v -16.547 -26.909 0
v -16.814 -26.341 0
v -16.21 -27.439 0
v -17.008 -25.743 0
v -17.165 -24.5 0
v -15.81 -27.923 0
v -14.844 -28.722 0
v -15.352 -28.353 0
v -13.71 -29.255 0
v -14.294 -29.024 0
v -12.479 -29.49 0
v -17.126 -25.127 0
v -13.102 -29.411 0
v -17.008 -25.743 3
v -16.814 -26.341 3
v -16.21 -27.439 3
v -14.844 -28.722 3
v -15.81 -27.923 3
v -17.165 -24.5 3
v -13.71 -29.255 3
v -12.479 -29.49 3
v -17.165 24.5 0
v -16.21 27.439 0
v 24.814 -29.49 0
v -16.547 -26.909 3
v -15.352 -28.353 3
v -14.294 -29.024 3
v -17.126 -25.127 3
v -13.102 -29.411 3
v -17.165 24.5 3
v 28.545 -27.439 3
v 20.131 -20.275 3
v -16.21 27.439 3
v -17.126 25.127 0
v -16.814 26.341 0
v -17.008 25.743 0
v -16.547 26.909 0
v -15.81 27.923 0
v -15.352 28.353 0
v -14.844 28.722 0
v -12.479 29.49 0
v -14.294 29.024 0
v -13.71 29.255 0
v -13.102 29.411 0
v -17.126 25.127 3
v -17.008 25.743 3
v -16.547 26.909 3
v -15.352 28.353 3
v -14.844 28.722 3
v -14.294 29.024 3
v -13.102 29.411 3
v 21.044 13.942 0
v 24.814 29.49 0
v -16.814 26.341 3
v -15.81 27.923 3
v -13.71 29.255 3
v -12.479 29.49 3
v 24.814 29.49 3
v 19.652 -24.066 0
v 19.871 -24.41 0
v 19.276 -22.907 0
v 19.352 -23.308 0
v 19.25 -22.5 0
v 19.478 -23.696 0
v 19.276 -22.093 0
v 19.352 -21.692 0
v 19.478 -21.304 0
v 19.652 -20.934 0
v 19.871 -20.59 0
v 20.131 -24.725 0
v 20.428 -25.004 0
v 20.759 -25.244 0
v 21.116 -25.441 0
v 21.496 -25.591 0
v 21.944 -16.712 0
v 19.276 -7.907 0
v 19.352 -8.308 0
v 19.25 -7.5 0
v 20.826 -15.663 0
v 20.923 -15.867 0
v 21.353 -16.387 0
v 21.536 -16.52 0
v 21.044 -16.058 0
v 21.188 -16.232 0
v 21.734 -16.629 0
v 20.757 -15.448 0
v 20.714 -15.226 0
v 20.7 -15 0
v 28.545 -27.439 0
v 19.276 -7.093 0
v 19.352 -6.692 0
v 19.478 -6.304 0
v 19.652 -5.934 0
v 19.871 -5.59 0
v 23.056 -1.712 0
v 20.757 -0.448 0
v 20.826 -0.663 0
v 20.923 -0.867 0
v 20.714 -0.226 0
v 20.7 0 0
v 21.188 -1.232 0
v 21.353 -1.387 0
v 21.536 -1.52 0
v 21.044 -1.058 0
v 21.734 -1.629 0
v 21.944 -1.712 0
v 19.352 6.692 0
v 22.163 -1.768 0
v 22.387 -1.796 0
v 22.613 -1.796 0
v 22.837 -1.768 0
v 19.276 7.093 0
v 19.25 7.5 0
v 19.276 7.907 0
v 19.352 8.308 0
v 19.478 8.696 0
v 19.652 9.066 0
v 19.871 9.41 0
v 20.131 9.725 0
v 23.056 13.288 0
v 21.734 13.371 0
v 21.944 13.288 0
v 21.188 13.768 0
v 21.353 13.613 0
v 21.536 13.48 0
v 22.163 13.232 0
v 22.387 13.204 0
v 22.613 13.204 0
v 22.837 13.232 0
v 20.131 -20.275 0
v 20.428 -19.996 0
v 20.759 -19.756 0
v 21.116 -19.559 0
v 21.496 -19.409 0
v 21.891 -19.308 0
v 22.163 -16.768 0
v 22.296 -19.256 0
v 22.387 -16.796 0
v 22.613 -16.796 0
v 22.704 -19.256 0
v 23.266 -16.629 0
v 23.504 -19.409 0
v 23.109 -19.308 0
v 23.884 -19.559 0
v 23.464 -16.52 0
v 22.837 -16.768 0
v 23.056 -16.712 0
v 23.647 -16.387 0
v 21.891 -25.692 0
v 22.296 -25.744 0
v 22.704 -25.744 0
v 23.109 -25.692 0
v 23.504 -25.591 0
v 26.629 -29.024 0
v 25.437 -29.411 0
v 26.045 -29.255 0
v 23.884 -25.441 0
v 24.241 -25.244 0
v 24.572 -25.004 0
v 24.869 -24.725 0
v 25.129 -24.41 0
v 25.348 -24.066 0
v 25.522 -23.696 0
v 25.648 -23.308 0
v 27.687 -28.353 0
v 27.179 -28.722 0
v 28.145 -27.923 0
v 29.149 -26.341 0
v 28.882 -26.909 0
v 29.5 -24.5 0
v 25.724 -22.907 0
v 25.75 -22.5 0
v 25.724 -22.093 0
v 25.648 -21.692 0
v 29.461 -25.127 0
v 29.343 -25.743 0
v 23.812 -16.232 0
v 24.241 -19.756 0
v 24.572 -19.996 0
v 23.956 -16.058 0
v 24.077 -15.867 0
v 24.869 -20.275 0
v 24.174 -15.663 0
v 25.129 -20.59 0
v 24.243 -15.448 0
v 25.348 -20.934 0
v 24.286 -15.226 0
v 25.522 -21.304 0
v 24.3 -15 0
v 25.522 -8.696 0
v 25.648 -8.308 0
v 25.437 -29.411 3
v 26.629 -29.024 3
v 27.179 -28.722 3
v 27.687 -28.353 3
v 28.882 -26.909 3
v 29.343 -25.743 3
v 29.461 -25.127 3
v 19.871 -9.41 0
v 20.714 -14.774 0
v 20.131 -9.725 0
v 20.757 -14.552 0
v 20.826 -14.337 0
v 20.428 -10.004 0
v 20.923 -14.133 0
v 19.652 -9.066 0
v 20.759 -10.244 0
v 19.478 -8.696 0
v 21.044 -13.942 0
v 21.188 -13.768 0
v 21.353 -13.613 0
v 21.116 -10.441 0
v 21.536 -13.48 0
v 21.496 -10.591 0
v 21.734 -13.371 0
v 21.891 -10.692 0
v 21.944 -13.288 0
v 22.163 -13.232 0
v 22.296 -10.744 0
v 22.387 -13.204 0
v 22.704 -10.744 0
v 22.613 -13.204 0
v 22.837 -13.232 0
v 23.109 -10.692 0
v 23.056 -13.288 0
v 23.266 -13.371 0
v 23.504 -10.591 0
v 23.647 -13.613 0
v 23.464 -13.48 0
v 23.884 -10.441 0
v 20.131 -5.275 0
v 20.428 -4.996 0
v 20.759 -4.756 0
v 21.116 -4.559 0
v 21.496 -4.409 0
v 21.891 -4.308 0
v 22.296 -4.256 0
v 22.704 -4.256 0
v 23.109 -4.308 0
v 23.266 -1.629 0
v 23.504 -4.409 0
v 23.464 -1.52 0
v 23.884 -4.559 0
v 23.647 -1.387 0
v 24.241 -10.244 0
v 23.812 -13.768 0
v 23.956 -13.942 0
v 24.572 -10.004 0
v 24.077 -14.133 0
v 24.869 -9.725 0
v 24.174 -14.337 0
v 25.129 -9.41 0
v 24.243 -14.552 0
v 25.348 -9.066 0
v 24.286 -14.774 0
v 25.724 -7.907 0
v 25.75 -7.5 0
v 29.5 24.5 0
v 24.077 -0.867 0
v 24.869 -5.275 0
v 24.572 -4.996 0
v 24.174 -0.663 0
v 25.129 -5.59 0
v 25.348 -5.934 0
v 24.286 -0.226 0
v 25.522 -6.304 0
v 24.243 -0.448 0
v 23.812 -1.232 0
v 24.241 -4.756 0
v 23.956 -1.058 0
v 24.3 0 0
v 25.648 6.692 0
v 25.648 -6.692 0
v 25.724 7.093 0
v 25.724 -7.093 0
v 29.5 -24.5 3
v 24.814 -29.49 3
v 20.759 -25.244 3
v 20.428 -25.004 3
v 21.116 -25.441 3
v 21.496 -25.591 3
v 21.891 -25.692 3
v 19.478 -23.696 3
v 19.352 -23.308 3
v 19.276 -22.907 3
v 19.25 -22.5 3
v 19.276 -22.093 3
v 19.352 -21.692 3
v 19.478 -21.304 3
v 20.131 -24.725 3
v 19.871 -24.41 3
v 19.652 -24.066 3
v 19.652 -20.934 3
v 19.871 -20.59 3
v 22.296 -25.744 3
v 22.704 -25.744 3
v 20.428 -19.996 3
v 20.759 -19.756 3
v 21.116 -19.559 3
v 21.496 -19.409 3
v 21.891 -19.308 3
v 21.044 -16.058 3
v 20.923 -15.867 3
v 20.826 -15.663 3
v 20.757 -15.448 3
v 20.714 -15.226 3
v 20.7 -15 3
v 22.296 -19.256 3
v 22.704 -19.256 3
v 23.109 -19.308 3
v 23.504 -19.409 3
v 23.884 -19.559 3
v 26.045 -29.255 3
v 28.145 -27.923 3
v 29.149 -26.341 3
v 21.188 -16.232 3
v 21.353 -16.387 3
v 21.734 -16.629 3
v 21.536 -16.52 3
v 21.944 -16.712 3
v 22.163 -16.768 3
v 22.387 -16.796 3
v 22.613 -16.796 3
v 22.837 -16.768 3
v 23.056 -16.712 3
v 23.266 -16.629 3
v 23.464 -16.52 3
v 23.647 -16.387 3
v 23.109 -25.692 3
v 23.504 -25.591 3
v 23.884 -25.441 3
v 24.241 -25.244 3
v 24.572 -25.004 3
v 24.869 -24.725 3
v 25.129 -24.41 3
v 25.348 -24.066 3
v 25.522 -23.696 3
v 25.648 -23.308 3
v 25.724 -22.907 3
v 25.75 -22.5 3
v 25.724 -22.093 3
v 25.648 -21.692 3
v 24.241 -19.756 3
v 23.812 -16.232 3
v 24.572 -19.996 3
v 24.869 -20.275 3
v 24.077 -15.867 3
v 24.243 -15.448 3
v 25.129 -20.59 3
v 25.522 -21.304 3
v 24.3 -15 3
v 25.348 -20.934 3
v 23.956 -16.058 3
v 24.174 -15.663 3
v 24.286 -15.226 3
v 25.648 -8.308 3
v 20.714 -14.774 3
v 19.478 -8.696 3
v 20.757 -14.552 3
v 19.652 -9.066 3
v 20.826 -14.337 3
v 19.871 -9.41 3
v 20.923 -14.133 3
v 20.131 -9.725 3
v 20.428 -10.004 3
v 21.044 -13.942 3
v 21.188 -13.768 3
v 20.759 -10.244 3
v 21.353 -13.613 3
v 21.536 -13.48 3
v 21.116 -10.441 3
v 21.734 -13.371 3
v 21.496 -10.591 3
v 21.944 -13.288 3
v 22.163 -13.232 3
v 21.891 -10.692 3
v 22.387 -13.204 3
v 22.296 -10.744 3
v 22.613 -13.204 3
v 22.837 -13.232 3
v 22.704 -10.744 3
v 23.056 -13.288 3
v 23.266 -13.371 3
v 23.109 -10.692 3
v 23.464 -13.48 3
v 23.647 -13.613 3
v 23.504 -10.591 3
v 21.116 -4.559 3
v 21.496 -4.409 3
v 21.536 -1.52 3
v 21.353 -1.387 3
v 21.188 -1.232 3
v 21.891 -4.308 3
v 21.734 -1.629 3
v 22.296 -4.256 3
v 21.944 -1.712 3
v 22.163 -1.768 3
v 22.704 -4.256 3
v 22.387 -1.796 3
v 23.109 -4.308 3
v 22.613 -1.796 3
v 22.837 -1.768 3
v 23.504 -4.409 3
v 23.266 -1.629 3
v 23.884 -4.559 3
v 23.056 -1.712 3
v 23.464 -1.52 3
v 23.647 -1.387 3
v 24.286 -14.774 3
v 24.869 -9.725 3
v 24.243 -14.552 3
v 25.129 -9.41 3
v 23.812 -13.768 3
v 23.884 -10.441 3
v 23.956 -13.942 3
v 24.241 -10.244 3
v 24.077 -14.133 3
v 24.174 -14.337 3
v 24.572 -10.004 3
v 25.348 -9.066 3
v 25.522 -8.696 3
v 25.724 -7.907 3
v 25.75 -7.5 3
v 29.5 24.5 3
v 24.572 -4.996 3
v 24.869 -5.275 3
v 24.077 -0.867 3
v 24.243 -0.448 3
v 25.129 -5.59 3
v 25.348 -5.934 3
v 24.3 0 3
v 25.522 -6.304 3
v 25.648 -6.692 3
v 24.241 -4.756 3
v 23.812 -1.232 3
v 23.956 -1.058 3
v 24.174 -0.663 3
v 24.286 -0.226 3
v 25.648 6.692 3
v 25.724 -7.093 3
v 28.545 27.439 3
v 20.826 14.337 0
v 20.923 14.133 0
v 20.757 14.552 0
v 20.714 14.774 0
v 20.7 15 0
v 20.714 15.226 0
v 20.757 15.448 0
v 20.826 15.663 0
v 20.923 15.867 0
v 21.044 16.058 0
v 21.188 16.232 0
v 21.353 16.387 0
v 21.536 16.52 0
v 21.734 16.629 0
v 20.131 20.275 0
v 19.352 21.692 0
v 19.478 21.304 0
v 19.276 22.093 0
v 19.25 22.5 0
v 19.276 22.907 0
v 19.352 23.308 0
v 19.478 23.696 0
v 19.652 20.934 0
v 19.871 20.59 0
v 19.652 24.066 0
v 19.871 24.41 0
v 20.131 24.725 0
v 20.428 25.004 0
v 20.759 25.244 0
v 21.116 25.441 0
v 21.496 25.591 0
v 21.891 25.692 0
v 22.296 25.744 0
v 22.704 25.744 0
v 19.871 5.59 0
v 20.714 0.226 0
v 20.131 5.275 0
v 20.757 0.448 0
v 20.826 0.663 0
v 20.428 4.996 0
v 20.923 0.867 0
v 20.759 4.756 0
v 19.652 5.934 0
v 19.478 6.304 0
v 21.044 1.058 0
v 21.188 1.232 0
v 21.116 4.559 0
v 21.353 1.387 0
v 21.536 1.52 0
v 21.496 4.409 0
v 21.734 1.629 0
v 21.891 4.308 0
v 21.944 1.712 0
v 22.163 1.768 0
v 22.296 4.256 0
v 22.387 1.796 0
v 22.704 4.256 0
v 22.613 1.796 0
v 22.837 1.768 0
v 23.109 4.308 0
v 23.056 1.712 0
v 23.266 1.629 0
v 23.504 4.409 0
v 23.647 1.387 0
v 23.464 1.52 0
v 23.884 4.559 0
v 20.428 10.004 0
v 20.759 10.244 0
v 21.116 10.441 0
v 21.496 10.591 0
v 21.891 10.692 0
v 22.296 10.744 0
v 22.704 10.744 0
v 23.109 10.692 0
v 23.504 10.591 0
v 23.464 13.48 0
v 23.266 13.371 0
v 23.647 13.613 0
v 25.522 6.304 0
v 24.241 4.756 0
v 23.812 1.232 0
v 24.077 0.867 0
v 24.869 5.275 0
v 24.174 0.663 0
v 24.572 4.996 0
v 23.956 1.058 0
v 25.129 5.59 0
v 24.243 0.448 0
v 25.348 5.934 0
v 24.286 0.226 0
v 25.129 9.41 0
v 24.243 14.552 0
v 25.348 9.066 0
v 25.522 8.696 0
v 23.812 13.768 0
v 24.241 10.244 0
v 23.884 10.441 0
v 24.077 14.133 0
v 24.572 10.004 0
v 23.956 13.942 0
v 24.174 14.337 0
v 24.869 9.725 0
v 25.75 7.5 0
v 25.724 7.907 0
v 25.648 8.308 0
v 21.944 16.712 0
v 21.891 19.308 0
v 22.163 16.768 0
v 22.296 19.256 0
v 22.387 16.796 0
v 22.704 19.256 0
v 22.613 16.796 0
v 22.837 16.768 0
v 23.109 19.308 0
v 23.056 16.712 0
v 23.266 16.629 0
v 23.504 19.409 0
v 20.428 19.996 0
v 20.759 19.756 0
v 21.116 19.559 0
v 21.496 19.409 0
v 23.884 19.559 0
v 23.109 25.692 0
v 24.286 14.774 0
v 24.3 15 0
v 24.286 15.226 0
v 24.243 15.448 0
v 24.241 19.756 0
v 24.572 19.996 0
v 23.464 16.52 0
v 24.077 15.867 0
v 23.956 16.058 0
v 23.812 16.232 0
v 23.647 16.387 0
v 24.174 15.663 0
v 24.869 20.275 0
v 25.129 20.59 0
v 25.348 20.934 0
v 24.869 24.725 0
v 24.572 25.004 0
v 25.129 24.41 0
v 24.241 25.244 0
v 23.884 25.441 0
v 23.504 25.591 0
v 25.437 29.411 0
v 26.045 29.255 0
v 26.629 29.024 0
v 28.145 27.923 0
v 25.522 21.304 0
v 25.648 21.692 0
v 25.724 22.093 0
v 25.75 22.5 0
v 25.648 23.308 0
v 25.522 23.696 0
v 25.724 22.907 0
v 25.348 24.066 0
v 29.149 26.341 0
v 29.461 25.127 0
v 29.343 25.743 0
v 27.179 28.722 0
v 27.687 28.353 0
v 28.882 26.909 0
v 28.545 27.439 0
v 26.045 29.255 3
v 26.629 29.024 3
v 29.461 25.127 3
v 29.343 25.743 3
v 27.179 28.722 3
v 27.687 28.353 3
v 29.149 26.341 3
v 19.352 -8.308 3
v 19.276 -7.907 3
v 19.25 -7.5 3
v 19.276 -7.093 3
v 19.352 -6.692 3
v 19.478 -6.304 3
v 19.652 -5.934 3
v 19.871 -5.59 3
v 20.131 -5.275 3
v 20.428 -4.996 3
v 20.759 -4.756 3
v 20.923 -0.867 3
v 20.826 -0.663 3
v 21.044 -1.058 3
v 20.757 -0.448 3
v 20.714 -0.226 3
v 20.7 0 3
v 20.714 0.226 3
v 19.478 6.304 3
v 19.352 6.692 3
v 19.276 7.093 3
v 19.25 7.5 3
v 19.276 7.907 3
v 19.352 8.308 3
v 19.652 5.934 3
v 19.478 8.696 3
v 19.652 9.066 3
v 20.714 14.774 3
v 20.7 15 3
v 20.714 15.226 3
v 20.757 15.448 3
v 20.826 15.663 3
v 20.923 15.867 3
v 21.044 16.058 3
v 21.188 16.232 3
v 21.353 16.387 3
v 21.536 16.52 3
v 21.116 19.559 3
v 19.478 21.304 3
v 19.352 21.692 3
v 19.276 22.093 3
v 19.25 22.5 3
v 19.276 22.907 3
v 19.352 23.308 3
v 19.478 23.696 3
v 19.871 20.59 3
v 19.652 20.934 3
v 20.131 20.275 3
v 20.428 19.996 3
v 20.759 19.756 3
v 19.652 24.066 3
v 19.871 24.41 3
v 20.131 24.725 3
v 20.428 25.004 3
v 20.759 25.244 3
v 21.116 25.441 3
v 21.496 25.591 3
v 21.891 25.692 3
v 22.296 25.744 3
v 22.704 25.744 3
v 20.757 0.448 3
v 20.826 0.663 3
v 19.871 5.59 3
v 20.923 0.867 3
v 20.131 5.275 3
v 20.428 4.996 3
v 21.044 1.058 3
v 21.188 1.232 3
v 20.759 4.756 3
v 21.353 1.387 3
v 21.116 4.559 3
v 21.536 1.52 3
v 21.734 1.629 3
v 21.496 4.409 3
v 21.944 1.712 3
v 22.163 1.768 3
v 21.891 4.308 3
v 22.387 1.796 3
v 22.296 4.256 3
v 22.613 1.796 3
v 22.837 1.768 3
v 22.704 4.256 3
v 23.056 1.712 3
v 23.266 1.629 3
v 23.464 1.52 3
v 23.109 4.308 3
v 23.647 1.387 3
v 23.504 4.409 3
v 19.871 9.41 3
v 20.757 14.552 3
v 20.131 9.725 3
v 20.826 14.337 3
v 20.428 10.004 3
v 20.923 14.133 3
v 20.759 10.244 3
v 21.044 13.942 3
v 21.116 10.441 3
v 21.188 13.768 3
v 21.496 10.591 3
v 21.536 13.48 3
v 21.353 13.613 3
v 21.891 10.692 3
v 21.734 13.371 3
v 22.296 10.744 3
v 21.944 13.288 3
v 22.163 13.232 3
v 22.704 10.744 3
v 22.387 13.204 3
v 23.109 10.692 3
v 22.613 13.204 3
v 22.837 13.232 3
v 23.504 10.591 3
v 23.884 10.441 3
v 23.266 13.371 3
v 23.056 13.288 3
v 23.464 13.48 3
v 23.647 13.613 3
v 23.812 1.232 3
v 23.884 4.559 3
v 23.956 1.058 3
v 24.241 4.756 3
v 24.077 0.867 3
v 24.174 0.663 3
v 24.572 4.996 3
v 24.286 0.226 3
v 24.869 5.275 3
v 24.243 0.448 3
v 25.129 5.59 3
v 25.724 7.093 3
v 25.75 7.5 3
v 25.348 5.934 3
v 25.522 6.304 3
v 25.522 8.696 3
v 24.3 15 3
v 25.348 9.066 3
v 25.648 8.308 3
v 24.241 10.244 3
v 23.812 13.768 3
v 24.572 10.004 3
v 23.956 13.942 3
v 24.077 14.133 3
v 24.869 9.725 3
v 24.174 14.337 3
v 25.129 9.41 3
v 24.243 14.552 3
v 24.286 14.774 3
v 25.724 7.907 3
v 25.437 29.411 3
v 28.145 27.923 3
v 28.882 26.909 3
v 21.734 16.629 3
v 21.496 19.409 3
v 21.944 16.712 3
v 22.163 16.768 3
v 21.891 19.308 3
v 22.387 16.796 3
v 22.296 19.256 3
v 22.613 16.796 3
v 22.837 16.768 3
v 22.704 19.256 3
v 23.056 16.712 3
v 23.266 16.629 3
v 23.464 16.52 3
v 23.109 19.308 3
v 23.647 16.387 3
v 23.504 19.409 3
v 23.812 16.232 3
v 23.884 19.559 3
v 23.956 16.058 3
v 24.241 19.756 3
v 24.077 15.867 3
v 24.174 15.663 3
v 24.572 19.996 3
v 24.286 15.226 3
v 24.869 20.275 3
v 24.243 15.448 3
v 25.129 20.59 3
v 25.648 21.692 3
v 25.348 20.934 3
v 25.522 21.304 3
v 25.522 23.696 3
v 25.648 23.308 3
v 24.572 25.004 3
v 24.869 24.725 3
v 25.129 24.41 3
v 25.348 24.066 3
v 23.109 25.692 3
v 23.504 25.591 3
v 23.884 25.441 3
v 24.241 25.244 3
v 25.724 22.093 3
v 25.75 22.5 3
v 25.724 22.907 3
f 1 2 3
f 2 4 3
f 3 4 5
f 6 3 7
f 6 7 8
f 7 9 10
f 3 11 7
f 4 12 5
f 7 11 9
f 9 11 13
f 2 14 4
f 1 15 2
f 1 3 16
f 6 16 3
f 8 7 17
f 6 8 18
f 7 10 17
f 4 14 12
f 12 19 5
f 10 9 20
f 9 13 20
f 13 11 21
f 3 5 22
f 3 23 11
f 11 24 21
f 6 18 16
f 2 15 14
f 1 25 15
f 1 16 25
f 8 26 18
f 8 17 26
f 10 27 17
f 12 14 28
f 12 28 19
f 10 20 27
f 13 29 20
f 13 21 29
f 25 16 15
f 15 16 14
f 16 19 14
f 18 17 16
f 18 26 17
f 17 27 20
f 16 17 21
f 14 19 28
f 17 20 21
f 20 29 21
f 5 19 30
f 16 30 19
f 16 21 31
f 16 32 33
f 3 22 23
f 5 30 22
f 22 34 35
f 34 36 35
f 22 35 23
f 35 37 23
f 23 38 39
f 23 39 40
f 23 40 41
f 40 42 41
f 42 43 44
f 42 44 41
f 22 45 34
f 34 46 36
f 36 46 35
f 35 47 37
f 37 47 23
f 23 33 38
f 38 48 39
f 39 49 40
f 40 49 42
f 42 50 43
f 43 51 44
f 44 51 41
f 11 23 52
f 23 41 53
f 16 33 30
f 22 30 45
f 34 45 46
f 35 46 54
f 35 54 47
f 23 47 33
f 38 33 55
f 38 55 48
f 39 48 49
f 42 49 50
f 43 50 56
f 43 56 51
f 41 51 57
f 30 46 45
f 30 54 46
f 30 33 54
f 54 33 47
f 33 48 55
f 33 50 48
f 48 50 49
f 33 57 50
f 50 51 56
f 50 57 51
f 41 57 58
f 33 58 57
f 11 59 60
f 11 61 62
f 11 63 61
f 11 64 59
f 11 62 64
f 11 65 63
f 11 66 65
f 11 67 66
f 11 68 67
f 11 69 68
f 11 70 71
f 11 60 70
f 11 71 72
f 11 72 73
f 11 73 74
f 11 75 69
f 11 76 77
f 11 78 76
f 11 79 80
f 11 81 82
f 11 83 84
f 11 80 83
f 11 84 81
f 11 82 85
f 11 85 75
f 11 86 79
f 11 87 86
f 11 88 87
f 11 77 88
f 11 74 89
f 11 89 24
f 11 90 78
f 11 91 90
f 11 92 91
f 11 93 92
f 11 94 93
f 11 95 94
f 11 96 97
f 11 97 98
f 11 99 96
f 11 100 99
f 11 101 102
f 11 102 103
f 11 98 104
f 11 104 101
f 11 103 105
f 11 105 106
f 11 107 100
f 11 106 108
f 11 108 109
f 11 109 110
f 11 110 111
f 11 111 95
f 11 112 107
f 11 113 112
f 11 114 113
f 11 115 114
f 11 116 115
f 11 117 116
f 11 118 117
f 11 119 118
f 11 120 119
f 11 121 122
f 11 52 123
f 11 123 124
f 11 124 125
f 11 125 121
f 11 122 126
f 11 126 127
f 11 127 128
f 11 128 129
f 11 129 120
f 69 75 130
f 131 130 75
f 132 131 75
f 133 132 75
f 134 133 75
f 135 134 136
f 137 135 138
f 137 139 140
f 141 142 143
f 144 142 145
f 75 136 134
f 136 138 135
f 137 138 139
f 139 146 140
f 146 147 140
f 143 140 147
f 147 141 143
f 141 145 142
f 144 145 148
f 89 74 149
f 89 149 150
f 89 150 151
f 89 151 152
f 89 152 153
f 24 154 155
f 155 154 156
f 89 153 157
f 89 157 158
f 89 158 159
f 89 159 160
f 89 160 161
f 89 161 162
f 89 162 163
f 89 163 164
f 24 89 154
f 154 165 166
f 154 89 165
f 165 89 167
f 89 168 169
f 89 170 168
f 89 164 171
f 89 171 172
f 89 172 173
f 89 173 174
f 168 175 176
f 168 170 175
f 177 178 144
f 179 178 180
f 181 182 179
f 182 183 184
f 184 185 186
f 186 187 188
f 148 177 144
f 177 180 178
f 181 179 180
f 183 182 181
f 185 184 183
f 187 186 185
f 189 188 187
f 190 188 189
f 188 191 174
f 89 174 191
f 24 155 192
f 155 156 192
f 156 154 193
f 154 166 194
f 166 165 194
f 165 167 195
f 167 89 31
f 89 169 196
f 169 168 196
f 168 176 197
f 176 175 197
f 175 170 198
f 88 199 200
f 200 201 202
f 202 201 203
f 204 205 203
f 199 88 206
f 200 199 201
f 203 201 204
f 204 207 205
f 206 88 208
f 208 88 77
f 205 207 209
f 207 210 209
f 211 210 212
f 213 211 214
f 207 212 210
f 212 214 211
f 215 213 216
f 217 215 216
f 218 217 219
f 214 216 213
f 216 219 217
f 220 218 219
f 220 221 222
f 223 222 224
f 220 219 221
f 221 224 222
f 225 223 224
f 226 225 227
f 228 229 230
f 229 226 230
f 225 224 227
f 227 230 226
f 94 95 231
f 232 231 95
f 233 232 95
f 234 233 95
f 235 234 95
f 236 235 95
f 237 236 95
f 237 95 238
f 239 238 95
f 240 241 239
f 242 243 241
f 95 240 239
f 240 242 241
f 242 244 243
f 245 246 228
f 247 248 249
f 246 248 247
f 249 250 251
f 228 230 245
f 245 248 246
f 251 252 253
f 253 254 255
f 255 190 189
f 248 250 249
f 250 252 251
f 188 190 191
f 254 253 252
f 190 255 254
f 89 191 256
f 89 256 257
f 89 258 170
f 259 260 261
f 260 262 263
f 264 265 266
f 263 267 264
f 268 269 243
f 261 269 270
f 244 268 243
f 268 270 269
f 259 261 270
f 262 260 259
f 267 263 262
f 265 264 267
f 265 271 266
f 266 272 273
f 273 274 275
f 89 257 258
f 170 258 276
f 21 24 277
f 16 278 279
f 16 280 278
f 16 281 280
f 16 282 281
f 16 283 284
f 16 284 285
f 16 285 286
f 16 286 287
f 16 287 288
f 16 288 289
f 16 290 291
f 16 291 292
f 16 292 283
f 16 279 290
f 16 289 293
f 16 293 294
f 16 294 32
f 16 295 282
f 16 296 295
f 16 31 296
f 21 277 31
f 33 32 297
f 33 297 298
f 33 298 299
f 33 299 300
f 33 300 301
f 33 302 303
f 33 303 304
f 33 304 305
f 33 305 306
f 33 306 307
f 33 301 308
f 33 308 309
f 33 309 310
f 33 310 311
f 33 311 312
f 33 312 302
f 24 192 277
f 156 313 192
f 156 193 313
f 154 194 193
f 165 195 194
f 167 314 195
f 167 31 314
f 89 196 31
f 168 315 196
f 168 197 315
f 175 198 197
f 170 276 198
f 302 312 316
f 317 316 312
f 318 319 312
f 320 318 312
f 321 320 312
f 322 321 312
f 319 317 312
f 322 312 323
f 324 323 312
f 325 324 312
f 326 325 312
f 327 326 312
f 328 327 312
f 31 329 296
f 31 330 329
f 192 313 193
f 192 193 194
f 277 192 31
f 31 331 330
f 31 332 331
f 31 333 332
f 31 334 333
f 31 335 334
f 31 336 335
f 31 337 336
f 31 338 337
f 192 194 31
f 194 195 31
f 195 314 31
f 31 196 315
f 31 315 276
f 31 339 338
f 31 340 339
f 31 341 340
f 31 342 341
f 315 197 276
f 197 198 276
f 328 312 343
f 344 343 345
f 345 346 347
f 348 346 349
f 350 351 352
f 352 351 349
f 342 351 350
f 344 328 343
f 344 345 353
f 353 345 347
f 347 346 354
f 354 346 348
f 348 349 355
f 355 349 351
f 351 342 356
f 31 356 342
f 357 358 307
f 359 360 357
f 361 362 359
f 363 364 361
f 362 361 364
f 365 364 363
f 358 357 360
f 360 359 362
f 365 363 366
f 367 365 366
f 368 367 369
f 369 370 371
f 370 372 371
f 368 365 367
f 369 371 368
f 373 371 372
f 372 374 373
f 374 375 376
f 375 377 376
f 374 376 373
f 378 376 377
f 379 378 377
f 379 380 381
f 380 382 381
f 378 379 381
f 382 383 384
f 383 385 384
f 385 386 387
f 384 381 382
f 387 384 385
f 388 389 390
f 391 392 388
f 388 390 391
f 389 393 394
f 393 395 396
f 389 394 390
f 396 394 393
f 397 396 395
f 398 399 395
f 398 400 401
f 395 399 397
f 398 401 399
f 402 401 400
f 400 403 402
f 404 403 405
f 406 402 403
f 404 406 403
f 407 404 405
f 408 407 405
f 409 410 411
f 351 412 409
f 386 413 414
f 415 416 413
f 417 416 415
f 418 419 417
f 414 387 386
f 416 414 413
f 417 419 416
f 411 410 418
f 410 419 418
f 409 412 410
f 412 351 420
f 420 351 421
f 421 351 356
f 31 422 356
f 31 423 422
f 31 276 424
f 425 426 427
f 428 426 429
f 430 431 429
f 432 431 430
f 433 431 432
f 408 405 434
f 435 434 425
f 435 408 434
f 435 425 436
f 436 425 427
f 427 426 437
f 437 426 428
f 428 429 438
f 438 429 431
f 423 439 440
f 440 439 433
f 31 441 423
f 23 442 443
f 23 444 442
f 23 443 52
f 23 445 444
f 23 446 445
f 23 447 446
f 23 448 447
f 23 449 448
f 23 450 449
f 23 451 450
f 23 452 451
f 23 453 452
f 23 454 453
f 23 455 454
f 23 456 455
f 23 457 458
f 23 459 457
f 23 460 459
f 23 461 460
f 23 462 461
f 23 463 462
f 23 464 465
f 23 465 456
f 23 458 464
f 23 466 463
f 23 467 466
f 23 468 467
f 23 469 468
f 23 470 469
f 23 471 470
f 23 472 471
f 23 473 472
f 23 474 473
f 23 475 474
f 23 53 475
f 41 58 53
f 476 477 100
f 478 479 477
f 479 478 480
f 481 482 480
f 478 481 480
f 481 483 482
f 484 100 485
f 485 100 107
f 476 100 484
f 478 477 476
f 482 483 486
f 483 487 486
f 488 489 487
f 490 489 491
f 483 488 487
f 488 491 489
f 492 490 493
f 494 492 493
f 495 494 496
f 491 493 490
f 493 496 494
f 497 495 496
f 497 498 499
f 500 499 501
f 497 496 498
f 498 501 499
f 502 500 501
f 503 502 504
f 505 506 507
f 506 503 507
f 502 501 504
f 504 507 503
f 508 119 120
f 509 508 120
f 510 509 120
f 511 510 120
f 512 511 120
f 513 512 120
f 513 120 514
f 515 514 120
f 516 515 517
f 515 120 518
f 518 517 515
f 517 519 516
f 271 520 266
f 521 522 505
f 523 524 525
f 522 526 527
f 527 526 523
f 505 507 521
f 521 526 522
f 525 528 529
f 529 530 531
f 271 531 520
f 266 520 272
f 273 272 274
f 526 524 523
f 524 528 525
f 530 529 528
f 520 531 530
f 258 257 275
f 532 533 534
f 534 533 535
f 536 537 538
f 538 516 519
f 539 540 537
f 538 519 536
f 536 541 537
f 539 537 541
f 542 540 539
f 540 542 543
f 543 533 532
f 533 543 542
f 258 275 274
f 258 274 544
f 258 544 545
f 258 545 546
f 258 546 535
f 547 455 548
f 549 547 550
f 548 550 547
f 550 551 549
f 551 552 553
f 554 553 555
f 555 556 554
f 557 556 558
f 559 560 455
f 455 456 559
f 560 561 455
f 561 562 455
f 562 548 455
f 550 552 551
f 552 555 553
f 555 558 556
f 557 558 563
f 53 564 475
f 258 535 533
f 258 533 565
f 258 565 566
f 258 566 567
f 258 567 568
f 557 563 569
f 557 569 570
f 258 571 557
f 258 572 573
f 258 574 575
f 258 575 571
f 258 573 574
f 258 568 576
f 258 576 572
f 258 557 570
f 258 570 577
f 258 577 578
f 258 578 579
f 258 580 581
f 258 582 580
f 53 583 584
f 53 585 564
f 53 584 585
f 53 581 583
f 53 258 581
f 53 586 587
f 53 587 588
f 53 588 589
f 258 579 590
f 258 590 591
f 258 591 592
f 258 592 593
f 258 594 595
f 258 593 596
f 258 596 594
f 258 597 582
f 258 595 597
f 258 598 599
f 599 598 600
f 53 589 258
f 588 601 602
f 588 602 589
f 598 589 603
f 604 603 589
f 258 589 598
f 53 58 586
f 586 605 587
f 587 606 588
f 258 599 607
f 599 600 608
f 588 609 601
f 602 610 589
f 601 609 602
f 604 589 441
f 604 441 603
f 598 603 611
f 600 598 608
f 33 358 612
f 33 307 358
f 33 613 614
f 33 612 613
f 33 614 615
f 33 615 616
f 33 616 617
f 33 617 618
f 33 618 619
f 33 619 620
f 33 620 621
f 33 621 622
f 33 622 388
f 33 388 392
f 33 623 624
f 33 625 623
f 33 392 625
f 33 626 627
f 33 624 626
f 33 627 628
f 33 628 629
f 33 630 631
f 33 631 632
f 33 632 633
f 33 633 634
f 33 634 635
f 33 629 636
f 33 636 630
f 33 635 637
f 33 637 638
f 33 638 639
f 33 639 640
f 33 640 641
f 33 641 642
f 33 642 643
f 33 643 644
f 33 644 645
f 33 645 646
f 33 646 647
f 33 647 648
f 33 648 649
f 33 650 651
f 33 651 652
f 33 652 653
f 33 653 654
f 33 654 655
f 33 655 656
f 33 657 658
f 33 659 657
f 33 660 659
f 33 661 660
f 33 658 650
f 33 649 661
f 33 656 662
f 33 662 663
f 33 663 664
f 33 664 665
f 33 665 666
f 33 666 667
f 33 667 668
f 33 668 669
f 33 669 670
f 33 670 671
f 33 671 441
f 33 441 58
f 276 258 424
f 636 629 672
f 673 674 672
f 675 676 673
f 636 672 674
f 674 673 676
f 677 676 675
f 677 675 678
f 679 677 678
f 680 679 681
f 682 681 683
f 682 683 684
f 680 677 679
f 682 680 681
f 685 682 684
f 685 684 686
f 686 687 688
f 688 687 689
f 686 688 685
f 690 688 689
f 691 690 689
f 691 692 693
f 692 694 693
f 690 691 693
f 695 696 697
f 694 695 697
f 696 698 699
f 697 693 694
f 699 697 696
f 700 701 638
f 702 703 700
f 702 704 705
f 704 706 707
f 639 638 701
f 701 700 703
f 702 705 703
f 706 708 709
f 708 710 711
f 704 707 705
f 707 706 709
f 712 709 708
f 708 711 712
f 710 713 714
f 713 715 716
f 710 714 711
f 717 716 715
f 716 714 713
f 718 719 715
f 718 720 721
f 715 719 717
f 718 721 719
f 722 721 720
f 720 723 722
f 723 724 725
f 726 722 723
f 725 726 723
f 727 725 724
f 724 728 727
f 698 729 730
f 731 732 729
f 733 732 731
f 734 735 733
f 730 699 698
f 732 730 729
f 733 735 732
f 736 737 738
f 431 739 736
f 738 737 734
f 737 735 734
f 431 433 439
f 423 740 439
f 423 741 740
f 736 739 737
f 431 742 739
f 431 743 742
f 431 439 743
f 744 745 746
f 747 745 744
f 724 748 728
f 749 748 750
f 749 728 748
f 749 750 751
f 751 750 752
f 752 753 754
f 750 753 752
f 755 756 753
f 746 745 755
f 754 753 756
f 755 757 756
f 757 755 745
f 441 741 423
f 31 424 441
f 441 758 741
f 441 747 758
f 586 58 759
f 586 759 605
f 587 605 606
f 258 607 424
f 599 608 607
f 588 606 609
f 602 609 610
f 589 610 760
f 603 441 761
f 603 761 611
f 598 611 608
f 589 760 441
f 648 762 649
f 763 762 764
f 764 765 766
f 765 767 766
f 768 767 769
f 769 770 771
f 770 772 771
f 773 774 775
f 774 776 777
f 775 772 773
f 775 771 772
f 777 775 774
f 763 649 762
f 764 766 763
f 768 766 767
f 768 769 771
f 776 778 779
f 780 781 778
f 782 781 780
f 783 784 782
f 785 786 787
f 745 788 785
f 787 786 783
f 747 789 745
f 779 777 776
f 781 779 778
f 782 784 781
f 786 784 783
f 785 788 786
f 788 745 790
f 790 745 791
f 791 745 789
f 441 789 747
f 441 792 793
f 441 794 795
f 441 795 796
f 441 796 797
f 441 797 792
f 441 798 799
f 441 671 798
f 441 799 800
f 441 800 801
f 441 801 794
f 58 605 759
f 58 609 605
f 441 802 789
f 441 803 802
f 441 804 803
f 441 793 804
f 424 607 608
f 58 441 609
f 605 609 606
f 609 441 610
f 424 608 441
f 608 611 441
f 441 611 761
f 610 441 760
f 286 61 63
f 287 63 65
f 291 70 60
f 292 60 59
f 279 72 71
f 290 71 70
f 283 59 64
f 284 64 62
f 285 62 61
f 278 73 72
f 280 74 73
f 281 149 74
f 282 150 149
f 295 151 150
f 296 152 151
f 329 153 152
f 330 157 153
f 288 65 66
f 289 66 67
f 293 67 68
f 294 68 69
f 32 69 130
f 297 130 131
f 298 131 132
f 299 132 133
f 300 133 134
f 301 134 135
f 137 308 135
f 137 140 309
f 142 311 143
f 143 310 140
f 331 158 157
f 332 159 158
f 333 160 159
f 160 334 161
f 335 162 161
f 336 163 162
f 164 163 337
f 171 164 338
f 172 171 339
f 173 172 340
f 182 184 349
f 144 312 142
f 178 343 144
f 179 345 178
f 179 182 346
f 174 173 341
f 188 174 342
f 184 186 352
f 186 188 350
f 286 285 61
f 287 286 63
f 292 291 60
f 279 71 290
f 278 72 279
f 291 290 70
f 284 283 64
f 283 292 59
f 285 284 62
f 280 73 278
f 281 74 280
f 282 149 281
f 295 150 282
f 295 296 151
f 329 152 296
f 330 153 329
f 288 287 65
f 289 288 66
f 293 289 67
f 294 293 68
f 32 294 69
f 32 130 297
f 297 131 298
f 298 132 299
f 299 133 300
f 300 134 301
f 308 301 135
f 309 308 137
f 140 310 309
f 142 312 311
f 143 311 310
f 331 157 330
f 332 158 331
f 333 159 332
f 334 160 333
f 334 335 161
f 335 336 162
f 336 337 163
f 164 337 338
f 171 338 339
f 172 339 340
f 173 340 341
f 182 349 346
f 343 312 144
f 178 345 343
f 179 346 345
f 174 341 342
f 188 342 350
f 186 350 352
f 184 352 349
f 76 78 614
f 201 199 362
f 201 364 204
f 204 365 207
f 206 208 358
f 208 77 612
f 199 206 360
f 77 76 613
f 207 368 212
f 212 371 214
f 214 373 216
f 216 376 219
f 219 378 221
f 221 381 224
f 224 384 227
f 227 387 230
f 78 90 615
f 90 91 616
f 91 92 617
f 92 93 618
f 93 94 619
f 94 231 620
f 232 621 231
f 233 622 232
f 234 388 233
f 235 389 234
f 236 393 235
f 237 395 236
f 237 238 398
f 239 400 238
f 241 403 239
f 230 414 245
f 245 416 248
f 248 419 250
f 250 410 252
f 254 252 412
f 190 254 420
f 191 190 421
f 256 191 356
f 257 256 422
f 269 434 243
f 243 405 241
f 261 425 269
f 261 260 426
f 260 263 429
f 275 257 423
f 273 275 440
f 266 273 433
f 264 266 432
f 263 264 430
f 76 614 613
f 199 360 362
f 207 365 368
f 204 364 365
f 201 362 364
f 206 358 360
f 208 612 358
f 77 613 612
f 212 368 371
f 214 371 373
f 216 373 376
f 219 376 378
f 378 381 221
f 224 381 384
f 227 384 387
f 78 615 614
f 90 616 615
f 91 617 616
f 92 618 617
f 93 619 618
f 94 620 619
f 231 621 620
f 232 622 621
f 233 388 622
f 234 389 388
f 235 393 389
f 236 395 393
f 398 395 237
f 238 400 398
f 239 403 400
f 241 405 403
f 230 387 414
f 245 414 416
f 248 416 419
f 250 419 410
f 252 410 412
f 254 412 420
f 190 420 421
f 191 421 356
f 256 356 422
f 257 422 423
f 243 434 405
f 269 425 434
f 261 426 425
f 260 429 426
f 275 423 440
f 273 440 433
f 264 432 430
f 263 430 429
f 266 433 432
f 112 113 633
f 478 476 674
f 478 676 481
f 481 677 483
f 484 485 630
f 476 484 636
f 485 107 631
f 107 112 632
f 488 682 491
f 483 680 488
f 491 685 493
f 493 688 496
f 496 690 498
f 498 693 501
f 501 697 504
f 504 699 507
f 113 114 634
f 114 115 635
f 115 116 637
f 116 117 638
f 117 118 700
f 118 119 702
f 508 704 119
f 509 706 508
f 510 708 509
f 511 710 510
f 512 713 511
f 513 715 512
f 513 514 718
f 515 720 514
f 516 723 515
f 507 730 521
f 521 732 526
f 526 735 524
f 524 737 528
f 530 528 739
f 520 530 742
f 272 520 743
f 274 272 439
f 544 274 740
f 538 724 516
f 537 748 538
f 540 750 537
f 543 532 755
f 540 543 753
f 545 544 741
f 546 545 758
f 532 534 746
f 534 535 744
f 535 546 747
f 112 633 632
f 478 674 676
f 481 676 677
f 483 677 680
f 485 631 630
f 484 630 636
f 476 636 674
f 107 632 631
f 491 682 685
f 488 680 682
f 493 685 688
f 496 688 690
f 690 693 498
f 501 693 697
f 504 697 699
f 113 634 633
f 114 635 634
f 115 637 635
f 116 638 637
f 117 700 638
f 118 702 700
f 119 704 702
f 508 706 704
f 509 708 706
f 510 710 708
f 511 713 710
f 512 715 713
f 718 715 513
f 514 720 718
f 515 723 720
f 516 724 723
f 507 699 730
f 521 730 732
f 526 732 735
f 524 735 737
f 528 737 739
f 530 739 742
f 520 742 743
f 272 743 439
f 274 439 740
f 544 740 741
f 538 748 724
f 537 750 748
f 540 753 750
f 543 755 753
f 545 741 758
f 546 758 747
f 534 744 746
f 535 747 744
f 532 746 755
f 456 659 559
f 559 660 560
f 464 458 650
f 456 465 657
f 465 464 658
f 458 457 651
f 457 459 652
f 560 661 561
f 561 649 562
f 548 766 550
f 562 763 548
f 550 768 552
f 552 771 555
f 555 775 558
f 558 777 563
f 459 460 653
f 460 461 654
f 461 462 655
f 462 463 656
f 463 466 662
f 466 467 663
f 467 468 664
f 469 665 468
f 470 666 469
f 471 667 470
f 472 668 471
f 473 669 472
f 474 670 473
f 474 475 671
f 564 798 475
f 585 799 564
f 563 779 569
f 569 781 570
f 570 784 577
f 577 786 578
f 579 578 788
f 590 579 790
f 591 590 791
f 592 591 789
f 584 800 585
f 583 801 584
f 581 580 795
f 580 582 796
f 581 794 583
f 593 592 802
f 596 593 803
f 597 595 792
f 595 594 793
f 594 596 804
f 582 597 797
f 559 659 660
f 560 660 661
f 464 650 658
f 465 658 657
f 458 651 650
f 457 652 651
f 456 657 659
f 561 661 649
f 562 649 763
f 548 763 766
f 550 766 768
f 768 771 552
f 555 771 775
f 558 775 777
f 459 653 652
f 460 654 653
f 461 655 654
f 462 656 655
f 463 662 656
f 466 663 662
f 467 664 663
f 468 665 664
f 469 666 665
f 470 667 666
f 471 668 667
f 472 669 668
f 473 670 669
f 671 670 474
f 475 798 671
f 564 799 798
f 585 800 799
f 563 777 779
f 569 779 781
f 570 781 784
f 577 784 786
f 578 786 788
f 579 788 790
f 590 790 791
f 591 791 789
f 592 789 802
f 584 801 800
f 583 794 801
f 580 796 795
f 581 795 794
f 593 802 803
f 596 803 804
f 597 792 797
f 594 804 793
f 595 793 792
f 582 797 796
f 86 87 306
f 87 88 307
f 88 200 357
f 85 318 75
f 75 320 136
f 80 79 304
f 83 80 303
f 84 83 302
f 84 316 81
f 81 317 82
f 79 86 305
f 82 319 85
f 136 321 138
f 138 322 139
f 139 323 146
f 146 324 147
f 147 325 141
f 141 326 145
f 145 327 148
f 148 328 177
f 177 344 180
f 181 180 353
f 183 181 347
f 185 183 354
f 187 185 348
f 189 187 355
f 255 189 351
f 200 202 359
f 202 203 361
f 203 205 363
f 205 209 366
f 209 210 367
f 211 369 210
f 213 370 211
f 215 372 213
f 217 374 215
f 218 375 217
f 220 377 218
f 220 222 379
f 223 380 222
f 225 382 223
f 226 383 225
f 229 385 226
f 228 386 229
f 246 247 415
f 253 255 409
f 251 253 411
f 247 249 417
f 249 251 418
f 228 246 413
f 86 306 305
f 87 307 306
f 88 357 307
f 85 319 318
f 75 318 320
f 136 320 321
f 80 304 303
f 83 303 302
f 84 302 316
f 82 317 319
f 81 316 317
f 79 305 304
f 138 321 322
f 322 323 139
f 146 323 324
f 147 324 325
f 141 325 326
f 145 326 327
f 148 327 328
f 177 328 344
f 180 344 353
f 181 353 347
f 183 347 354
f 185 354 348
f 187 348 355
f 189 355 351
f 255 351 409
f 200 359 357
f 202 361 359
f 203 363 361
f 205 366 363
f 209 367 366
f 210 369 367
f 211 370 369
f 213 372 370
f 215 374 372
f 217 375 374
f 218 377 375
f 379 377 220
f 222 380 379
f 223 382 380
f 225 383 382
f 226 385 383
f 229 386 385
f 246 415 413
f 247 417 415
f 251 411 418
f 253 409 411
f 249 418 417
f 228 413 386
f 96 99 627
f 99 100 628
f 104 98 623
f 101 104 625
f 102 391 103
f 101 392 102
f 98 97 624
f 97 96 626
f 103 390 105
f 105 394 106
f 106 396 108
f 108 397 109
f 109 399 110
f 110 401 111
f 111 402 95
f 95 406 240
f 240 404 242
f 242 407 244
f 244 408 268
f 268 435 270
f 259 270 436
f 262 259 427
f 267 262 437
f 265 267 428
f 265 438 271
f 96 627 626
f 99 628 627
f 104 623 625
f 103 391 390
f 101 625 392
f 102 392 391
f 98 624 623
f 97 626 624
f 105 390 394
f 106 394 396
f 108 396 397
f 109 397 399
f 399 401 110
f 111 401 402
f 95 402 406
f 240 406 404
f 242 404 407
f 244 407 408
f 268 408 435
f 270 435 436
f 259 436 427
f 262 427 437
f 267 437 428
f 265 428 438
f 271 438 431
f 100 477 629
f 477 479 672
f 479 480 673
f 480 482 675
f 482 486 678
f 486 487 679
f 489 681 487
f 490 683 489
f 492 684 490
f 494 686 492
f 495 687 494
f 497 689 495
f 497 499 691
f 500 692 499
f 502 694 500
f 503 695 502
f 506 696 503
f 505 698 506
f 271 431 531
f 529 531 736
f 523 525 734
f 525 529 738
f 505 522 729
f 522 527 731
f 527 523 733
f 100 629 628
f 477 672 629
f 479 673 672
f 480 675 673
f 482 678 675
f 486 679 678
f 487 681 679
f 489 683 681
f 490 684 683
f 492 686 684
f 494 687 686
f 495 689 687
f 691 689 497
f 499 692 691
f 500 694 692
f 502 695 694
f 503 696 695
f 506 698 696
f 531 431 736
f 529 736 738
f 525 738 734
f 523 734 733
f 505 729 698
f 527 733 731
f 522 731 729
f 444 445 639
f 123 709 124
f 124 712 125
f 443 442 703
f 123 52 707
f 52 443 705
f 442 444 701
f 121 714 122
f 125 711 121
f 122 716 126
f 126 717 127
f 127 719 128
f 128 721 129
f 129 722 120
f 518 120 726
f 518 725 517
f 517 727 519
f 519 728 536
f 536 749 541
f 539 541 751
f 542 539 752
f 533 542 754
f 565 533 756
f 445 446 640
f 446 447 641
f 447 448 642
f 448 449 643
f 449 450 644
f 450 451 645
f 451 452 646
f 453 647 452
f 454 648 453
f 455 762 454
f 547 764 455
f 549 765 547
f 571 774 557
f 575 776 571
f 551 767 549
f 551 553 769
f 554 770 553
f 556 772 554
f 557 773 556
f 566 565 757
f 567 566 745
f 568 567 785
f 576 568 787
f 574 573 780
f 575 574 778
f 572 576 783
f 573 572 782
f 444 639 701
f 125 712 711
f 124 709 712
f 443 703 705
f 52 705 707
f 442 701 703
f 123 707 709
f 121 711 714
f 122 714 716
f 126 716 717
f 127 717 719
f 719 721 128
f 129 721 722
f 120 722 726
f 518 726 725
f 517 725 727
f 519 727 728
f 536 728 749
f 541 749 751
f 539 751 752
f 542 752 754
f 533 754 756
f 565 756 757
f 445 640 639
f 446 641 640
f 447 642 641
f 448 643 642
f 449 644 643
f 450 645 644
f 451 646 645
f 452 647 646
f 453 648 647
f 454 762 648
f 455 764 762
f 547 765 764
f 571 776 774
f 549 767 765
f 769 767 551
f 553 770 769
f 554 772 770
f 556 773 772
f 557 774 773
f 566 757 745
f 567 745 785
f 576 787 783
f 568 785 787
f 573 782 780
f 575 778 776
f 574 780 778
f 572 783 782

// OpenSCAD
$fn = 50;

difference() {
	union() {
		translate(v = [6.1675, 0.0, 0]) {
			hull() {
				translate(v = [-18.3325, 24.5, 0]) {
					cylinder(h = 3, r = 5);
				}
				translate(v = [18.3325, 24.5, 0]) {
					cylinder(h = 3, r = 5);
				}
				translate(v = [-18.3325, -24.5, 0]) {
					cylinder(h = 3, r = 5);
				}
				translate(v = [18.3325, -24.5, 0]) {
					cylinder(h = 3, r = 5);
				}
			}
		}
	}
	union() {
		translate(v = [22.5, -22.5, -1]) {
			cylinder(h = 5, r = 3.25);
		}
		translate(v = [22.5, -7.5, -1]) {
			cylinder(h = 5, r = 3.25);
		}
		translate(v = [22.5, 7.5, -1]) {
			cylinder(h = 5, r = 3.25);
		}
		translate(v = [22.5, 22.5, -1]) {
			cylinder(h = 5, r = 3.25);
		}
		translate(v = [22.5, -15.0, -1]) {
			cylinder(h = 5, r = 1.8);
		}
		translate(v = [22.5, 0.0, -1]) {
			cylinder(h = 5, r = 1.8);
		}
		translate(v = [22.5, 15.0, -1]) {
			cylinder(h = 5, r = 1.8);
		}
	}
}
